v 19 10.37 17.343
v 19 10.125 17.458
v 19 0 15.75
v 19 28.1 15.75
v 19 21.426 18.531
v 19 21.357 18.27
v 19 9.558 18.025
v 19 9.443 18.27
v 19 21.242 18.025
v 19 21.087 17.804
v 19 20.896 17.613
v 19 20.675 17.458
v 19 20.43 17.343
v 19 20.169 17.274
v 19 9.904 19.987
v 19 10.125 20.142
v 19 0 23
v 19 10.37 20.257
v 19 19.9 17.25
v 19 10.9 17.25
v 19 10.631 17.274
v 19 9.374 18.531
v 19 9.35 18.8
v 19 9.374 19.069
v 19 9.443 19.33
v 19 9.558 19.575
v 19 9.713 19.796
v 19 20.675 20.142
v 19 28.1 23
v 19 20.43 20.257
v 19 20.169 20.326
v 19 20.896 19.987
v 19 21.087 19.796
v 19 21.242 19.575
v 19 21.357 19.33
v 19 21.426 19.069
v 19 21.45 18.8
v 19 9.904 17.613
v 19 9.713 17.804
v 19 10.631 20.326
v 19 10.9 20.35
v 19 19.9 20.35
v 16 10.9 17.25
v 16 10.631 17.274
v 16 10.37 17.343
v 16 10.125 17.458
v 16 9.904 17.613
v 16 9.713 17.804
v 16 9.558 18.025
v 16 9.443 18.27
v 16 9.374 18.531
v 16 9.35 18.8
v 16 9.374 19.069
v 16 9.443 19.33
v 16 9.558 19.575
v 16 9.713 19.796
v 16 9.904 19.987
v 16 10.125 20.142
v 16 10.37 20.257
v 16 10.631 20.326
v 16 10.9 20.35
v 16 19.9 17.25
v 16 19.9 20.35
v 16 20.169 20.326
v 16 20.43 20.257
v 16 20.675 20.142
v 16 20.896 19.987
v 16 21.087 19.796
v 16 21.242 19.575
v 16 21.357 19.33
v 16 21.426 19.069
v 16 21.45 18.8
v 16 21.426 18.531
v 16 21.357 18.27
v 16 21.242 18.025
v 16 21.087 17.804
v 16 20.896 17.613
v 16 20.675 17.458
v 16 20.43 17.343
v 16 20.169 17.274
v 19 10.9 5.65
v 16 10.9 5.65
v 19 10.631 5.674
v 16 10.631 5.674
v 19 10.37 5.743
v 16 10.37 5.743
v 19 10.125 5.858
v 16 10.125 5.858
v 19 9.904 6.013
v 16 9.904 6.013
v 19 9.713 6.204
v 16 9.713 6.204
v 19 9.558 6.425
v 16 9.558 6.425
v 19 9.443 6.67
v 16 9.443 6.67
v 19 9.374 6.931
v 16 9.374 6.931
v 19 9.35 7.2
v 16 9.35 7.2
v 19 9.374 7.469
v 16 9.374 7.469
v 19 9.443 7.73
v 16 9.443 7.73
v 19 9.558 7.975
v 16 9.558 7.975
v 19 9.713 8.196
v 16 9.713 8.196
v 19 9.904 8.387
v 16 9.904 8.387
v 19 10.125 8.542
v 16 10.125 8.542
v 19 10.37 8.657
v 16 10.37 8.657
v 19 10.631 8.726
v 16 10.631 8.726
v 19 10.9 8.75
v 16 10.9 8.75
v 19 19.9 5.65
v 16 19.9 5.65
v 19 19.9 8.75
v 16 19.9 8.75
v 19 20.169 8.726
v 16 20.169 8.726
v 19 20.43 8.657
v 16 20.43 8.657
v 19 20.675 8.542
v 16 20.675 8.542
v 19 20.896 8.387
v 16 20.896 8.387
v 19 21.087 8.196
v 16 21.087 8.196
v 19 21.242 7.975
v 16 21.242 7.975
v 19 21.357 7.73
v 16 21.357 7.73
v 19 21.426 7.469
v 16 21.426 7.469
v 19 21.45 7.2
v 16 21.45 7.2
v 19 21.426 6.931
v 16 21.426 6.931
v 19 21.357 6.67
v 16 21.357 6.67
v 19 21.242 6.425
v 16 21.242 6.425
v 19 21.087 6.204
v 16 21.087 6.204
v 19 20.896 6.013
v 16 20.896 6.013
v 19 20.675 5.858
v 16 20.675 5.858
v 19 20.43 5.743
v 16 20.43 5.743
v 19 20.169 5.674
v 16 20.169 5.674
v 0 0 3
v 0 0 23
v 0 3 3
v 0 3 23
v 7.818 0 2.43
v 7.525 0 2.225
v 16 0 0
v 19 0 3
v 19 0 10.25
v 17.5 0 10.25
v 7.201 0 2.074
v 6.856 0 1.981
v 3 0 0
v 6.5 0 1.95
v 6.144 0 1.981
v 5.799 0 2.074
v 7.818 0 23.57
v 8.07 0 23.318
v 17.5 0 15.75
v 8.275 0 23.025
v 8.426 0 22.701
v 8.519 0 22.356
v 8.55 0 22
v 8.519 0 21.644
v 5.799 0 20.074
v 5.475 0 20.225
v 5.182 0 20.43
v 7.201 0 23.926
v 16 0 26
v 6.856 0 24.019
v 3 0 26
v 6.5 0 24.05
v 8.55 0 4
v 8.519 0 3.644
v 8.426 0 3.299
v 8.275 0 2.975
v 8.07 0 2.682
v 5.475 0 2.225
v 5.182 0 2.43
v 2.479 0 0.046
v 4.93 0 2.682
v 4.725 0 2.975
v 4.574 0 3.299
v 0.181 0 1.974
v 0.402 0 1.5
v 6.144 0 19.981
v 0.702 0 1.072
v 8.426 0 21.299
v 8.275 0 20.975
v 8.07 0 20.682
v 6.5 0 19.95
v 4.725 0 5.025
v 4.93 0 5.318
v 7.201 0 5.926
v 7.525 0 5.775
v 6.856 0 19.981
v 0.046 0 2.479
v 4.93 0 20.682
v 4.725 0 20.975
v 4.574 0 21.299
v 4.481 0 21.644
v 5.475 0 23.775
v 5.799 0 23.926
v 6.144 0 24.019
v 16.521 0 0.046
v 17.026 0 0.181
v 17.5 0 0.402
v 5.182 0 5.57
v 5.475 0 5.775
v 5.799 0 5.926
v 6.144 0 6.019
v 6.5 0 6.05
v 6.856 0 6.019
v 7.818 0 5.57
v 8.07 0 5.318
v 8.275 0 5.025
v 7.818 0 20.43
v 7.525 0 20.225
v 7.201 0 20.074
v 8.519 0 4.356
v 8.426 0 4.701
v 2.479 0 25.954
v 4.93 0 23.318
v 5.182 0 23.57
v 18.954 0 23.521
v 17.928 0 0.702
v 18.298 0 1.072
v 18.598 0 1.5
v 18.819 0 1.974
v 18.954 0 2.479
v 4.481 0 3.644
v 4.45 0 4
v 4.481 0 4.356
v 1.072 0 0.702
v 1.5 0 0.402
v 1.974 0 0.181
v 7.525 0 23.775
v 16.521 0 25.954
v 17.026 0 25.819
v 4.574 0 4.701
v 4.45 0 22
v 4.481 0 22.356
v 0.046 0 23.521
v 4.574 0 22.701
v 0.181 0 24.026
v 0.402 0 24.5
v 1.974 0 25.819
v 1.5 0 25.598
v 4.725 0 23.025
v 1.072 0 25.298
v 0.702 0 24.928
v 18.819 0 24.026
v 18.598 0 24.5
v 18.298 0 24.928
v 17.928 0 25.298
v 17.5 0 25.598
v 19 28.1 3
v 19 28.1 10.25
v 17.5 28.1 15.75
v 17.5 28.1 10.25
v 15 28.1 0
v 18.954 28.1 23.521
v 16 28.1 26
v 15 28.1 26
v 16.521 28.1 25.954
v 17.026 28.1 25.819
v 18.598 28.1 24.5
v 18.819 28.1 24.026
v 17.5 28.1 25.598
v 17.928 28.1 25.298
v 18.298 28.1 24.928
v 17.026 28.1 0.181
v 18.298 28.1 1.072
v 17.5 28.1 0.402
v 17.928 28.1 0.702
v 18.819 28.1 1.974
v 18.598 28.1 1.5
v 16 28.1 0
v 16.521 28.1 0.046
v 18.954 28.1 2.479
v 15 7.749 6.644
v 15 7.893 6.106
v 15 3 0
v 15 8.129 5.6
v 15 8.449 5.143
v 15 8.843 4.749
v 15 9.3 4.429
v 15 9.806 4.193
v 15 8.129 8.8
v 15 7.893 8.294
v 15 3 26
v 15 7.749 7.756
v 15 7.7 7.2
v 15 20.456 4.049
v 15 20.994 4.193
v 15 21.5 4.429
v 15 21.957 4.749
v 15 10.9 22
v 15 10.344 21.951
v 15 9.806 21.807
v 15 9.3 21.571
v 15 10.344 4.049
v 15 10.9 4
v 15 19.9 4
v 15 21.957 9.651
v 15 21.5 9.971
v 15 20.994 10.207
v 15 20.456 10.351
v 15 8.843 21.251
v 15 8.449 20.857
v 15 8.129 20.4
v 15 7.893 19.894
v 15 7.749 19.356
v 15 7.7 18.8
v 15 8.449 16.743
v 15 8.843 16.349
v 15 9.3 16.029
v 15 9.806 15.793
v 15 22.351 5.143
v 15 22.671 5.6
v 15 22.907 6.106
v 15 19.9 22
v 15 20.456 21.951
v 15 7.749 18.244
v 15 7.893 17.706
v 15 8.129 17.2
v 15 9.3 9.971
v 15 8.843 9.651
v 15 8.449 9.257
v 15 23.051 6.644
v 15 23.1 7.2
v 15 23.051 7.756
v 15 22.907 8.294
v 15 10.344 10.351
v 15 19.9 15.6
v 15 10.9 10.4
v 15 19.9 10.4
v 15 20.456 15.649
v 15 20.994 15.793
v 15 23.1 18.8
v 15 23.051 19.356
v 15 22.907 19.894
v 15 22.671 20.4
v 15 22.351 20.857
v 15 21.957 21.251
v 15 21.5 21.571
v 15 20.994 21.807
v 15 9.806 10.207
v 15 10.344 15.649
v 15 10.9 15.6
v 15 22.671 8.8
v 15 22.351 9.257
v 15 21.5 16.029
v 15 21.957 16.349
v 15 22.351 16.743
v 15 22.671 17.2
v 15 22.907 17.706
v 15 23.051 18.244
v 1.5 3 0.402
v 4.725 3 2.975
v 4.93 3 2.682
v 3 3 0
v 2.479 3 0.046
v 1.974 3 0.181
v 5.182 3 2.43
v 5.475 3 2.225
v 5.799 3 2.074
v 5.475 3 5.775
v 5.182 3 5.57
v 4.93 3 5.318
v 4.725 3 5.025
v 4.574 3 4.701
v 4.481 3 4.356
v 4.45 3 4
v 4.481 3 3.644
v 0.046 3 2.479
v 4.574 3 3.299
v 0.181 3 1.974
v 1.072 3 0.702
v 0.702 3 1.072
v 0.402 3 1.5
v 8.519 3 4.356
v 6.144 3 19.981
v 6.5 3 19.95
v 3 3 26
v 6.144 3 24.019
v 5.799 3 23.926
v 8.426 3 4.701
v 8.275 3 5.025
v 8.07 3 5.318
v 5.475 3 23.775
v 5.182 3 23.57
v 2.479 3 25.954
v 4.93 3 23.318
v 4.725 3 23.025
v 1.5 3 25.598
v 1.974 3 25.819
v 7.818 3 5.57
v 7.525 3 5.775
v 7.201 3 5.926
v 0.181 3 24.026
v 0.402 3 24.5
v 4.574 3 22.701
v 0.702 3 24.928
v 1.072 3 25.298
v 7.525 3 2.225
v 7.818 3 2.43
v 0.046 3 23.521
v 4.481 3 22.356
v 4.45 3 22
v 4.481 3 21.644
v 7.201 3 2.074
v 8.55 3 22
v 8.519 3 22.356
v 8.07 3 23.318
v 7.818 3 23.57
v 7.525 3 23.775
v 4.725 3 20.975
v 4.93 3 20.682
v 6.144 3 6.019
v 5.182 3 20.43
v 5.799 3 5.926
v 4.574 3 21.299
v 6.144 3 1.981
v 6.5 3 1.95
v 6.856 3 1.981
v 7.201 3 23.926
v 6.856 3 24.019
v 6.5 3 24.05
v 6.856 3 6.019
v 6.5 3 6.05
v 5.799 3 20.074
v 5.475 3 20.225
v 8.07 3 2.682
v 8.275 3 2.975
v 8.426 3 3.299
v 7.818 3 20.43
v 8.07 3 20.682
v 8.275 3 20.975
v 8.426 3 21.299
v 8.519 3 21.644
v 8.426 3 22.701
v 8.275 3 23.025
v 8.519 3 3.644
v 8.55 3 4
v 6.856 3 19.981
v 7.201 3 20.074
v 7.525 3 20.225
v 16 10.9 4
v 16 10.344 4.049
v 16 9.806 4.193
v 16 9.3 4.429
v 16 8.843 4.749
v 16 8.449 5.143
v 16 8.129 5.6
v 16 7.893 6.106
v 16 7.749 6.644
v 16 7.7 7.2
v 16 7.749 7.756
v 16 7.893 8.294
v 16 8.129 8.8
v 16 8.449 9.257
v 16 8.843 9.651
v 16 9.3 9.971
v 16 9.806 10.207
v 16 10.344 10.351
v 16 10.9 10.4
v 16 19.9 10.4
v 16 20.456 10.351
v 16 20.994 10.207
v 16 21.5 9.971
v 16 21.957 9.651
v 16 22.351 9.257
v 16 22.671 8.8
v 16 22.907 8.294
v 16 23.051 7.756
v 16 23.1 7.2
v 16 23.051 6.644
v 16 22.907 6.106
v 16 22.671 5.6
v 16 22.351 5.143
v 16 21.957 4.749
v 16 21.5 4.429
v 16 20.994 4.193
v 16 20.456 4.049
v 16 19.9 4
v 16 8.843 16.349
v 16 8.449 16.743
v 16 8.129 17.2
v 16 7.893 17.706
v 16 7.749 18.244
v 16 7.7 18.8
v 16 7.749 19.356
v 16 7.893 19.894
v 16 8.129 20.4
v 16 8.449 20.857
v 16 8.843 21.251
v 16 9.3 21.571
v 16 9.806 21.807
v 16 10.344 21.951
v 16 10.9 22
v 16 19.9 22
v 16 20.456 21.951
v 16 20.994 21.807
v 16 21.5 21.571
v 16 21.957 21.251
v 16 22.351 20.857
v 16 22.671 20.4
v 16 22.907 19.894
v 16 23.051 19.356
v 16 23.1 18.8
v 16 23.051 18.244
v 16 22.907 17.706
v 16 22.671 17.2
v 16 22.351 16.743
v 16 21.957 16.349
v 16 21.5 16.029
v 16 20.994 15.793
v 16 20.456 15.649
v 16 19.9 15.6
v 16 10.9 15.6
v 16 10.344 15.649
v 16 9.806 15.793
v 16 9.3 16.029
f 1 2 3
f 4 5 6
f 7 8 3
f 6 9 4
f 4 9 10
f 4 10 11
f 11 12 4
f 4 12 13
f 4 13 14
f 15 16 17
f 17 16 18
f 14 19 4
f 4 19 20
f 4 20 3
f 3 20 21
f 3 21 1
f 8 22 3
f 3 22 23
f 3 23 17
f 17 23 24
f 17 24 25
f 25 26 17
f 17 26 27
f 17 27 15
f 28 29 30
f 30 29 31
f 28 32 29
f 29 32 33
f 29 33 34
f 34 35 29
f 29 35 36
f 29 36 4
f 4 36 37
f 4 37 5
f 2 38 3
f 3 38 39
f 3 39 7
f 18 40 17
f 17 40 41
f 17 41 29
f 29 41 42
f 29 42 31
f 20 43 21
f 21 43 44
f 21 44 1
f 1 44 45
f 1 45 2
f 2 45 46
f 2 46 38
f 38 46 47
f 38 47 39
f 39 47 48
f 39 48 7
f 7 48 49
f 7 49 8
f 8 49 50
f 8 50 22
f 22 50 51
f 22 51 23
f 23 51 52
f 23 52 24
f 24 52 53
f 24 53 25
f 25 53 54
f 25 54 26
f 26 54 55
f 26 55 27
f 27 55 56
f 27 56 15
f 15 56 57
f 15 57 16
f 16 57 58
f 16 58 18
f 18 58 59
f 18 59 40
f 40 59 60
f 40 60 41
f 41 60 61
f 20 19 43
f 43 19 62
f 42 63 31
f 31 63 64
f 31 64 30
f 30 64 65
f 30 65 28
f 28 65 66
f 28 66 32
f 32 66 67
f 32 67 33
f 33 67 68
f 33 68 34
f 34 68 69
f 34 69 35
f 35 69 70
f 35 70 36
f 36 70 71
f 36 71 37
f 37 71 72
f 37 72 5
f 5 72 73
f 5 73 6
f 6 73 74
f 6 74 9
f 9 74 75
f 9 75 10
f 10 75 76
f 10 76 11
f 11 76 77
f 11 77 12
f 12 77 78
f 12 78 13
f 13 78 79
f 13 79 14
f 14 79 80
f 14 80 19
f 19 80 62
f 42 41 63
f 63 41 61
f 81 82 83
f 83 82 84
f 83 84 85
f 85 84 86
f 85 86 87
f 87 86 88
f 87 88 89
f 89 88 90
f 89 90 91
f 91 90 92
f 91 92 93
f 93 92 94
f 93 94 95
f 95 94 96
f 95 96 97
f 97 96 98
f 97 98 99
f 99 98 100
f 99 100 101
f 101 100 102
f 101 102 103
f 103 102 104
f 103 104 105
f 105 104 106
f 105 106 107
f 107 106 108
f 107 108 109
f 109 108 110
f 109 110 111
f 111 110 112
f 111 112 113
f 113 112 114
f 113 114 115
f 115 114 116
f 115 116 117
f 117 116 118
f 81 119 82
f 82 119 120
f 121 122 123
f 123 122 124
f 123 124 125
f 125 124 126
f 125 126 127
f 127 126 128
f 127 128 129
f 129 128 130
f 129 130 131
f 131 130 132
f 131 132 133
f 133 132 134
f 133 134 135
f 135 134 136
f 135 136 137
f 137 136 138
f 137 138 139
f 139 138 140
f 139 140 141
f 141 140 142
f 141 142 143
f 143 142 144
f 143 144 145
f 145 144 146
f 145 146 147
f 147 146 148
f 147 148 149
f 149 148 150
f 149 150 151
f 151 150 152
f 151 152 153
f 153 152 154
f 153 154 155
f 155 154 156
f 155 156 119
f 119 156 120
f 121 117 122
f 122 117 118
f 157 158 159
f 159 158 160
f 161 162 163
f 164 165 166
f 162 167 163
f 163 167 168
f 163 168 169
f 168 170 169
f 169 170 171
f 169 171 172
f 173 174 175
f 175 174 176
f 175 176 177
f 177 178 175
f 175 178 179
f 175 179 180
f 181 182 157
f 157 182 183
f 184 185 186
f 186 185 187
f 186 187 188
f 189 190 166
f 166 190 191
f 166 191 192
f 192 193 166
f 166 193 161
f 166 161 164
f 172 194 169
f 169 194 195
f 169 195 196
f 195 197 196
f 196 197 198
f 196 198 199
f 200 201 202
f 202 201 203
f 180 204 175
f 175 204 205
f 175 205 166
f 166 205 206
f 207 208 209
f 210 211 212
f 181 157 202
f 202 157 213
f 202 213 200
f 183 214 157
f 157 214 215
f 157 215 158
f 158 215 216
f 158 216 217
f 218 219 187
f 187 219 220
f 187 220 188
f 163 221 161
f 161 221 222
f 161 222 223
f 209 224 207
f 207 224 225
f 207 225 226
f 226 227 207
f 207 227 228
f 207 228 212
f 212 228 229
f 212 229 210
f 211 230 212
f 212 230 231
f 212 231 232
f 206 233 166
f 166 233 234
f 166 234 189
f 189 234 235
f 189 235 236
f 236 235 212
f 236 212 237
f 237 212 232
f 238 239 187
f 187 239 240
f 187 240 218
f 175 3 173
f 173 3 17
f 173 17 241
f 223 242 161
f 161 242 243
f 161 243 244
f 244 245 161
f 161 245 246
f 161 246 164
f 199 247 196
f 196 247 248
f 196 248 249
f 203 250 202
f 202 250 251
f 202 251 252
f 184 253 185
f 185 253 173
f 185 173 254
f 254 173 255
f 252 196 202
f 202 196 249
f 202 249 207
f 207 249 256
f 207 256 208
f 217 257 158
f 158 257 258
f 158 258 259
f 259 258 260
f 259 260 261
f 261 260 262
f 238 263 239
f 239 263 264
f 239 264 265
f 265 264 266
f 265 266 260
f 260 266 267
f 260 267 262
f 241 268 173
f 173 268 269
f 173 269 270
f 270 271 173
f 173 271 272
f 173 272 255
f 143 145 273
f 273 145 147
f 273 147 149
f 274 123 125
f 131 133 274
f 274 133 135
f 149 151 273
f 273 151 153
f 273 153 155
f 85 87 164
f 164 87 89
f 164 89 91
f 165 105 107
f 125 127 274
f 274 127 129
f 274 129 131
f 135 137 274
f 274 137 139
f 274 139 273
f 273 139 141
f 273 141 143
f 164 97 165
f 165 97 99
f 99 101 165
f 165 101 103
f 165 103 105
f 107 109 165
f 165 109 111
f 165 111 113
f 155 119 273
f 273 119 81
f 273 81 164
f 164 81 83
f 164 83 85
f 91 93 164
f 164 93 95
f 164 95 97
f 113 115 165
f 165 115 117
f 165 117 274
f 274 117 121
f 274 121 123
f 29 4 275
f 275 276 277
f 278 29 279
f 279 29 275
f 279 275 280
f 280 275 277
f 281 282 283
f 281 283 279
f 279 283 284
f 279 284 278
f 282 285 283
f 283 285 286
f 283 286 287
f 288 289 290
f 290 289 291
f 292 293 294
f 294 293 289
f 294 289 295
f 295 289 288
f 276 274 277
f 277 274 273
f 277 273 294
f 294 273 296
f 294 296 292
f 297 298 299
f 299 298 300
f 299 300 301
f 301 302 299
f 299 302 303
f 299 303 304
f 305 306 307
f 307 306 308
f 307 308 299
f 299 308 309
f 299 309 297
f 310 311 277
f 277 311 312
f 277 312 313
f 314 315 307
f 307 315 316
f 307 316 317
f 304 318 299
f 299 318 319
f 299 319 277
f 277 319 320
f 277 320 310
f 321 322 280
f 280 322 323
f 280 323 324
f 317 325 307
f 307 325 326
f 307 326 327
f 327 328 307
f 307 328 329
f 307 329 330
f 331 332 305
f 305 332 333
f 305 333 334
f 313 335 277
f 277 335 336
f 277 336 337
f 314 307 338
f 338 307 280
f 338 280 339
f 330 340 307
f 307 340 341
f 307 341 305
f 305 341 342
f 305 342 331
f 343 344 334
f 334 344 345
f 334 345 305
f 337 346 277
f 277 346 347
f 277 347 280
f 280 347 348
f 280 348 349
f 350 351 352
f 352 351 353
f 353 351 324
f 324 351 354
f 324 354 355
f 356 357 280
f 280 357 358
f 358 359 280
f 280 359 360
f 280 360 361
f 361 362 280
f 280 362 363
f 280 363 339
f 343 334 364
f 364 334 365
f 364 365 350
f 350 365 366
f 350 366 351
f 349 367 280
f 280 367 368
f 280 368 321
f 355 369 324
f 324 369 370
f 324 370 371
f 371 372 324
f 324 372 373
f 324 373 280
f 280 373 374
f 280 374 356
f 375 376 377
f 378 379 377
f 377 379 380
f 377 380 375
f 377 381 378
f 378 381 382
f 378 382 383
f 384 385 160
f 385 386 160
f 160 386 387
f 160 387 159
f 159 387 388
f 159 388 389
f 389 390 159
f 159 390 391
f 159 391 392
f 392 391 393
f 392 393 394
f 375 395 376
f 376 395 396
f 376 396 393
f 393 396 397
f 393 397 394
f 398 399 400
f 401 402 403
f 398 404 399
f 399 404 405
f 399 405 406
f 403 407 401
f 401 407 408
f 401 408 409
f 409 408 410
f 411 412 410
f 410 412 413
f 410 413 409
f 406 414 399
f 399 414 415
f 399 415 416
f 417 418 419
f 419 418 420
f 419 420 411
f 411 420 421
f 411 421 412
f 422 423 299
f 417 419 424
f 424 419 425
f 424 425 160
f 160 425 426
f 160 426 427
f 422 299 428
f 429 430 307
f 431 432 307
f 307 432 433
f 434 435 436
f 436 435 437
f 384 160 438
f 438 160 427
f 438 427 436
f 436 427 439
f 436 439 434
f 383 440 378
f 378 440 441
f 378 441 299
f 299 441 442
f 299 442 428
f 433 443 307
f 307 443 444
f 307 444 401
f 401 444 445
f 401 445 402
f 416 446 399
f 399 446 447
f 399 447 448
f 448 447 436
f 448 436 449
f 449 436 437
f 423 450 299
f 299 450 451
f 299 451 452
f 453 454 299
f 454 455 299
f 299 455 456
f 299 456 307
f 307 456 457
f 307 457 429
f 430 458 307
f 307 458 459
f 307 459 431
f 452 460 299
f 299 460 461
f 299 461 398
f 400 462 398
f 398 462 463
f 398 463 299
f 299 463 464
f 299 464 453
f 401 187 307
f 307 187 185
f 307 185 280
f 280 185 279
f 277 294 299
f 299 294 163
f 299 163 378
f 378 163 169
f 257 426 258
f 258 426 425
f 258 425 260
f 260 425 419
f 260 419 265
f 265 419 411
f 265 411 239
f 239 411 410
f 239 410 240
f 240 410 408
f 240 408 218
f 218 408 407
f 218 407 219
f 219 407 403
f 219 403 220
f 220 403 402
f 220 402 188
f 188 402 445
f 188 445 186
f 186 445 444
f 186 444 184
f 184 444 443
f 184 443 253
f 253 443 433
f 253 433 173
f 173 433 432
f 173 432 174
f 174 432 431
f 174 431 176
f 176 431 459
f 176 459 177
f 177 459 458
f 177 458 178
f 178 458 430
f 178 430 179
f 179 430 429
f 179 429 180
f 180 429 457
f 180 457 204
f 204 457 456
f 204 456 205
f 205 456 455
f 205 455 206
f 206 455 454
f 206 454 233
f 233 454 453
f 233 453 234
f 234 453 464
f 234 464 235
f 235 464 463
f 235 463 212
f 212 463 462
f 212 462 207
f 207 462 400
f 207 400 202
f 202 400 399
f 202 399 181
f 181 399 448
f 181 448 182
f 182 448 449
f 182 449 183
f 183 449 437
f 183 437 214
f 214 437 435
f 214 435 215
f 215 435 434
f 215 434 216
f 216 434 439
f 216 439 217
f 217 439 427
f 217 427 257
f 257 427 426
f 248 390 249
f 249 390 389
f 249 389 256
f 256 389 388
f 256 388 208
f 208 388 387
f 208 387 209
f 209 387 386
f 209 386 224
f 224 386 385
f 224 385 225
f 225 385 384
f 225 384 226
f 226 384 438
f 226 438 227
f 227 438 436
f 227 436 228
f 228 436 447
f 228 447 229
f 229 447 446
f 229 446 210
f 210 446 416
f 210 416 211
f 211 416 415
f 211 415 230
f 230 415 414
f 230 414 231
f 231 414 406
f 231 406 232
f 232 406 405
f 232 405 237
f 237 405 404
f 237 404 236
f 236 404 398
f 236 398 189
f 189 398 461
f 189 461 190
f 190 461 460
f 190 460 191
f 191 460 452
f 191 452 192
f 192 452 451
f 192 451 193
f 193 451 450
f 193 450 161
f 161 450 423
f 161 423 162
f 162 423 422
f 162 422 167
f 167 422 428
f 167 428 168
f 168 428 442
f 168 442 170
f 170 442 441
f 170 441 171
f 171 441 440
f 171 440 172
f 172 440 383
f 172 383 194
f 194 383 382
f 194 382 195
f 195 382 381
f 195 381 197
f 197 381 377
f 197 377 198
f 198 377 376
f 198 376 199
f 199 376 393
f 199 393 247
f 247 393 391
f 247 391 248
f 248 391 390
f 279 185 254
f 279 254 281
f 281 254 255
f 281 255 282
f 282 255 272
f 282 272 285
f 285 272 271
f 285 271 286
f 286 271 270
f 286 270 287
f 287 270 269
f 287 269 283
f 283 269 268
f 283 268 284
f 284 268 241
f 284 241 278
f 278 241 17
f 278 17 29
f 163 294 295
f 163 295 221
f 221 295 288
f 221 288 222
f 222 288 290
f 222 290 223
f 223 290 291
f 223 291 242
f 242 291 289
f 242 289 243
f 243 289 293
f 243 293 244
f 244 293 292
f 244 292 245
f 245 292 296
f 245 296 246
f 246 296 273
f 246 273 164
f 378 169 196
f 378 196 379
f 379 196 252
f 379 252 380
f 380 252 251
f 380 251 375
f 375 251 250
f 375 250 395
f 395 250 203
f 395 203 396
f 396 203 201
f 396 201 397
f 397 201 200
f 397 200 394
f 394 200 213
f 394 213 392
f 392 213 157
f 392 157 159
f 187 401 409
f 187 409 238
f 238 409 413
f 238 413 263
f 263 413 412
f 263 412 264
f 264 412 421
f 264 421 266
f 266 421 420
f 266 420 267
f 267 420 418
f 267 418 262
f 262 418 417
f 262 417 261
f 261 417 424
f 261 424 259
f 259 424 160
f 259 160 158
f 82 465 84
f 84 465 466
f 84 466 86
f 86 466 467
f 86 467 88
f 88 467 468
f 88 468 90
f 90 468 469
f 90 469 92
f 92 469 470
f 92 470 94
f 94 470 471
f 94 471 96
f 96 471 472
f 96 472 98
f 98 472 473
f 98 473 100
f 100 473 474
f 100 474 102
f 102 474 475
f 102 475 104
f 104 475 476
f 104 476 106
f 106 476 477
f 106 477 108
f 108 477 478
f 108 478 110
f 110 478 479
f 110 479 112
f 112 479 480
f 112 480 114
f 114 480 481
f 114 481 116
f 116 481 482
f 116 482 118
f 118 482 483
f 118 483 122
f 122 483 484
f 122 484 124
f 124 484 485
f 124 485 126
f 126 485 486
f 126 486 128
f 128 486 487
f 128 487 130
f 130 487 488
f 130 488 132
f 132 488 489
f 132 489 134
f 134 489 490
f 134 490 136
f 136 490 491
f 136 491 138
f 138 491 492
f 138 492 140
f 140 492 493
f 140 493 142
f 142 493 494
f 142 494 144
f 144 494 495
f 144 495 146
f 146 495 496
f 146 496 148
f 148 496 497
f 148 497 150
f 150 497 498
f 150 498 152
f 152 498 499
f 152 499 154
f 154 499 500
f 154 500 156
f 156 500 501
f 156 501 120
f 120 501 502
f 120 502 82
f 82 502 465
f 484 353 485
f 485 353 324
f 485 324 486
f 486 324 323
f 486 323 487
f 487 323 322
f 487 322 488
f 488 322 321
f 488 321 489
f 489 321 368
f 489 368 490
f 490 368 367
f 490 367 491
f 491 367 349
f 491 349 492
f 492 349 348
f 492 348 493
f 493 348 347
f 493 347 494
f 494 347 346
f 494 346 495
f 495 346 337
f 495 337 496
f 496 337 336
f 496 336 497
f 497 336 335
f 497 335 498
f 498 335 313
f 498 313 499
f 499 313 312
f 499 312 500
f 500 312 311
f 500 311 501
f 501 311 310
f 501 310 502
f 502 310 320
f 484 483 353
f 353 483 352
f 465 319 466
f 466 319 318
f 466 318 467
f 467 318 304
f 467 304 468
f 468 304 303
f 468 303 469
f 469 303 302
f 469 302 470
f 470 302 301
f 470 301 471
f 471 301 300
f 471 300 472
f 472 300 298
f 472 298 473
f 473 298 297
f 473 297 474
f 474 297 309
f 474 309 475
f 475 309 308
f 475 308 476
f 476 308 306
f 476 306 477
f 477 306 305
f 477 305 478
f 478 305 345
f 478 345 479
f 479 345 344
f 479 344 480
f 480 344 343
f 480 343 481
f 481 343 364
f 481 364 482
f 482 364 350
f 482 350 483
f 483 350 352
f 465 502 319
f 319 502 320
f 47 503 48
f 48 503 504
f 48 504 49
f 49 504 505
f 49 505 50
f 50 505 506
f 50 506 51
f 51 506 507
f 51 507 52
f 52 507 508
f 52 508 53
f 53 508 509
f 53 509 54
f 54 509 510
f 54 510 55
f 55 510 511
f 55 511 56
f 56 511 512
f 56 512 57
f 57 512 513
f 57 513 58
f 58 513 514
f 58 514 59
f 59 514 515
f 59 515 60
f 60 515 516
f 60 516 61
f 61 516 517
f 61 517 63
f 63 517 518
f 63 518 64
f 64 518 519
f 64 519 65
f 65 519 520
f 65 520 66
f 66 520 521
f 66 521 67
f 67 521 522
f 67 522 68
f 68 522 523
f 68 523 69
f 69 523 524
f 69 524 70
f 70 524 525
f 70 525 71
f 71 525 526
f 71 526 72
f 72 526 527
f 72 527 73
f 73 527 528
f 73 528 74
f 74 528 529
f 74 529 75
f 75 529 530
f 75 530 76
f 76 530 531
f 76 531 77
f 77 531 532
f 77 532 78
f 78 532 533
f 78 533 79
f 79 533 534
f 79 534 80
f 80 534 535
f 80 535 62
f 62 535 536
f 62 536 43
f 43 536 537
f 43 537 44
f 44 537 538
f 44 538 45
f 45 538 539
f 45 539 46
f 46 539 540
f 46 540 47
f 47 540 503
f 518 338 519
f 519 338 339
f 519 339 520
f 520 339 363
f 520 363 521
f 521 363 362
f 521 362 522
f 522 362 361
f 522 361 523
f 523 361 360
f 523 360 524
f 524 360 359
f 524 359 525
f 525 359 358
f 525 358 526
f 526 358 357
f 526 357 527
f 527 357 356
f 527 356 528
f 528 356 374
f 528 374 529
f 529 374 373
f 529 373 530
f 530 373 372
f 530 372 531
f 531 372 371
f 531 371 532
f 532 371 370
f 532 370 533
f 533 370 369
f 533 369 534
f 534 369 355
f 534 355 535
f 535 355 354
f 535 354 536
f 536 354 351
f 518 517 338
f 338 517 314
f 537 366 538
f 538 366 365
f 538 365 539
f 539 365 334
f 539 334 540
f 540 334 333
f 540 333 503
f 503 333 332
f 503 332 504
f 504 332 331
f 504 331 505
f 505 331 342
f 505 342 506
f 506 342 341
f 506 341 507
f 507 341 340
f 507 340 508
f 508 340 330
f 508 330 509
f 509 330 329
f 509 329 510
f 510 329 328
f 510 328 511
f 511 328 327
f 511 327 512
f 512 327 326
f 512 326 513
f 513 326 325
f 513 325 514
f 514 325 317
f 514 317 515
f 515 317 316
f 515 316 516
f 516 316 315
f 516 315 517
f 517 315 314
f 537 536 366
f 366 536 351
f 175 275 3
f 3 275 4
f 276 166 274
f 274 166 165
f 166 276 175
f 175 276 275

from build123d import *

# Parameters (mm, degrees)
BOSS_EXTRUDE1_DEPTH                       = 26
BLTOUCHPROBEMOUNTHOLESSKETCH2_R           = 2.05
BLTOUCHPROBEMOUNTHOLESCUT_EXTRUDE1_DEPTH  = 41.829033787
FILLET1_R                                 = 3
PROBESLIDINGMOUNTCUT_EXTRUDE3_DEPTH       = 42.117028103
PROBESLIDINGMOUNTCHANELCUT_EXTRUDE4_DEPTH = 1
CABLECHANNELSKETCH1_W                     = 5.5
CABLECHANNELSKETCH1_H                     = 28.1
CABLECUT_EXTRUDE1_DEPTH                   = 1.5


with BuildPart() as part:
    # ProfileSketch1 → Boss-Extrude1 (new body)
    with BuildSketch(Plane.XY):
        Polygon((0, 0), (19, 0), (19, 28.1), (15, 28.1), (15, 3), (0, 3), align=None)
    extrude(amount=BOSS_EXTRUDE1_DEPTH)

    # BLTouchProbeMountHolesSketch2 → BLTouchProbeMountHolesCut-Extrude1 (cut, through all)
    with BuildSketch(Plane(origin=(0, 3, 0), x_dir=(1, 0, 0), z_dir=(0, 1, 0))):
        with Locations(Location((6.5, -4, 0), (0, 0, 180))):
            Circle(BLTOUCHPROBEMOUNTHOLESSKETCH2_R)
        with Locations(Location((6.5, -22, 0), (0, 0, 180))):
            Circle(BLTOUCHPROBEMOUNTHOLESSKETCH2_R)
    extrude(amount=-BLTOUCHPROBEMOUNTHOLESCUT_EXTRUDE1_DEPTH, mode=Mode.SUBTRACT)

    # Fillet1
    fillet1_edges = [part.edges().sort_by_distance(p)[0] for p in [
        (19, 14.05, 26),
        (0, 1.5, 26),
        (19, 14.05, 0),
        (0, 1.5, 0),
    ]]
    fillet(fillet1_edges, radius=FILLET1_R)

    # ProbeSlidingMountSketch4 → ProbeSlidingMountCut-Extrude3 (cut, through all)
    with BuildSketch(Plane.ZY.offset(-15)):
        with BuildLine():
            Line((5.65, 19.9), (5.65, 10.9))
            ThreePointArc((5.65, 10.9), (7.2, 9.35), (8.75, 10.9))
            Line((8.75, 10.9), (8.75, 19.9))
            ThreePointArc((8.75, 19.9), (7.2, 21.45), (5.65, 19.9))
        make_face()
        with BuildLine():
            Line((17.25, 19.9), (17.25, 10.9))
            ThreePointArc((17.25, 10.9), (18.8, 9.35), (20.35, 10.9))
            Line((20.35, 10.9), (20.35, 19.9))
            ThreePointArc((20.35, 19.9), (18.8, 21.45), (17.25, 19.9))
        make_face()
    extrude(amount=-PROBESLIDINGMOUNTCUT_EXTRUDE3_DEPTH, mode=Mode.SUBTRACT)

    # ProbeSlidingMountChannelSketch5 → ProbeSlidingMountChanelCut-Extrude4 (cut)
    with BuildSketch(Plane.ZY.offset(-15)):
        with BuildLine():
            Line((10.4, 19.9), (10.4, 10.9))
            ThreePointArc((10.4, 10.9), (7.2, 7.7), (4, 10.9))
            Line((4, 10.9), (4, 19.9))
            ThreePointArc((4, 19.9), (7.2, 23.1), (10.4, 19.9))
        make_face()
        with BuildLine():
            Line((22, 19.9), (22, 10.9))
            ThreePointArc((22, 10.9), (18.8, 7.7), (15.6, 10.9))
            Line((15.6, 10.9), (15.6, 19.9))
            ThreePointArc((15.6, 19.9), (18.8, 23.1), (22, 19.9))
        make_face()
    extrude(amount=-PROBESLIDINGMOUNTCHANELCUT_EXTRUDE4_DEPTH, mode=Mode.SUBTRACT)

    # CableChannelSketch1 → CableCut-Extrude1 (cut)
    with BuildSketch(Plane(origin=(19, 0, 0), x_dir=(0, 0, -1), z_dir=(1, 0, 0))):
        with Locations((-13, 14.05)):
            Rectangle(CABLECHANNELSKETCH1_W, CABLECHANNELSKETCH1_H)
    extrude(amount=-CABLECUT_EXTRUDE1_DEPTH, mode=Mode.SUBTRACT)


solid = part.part
